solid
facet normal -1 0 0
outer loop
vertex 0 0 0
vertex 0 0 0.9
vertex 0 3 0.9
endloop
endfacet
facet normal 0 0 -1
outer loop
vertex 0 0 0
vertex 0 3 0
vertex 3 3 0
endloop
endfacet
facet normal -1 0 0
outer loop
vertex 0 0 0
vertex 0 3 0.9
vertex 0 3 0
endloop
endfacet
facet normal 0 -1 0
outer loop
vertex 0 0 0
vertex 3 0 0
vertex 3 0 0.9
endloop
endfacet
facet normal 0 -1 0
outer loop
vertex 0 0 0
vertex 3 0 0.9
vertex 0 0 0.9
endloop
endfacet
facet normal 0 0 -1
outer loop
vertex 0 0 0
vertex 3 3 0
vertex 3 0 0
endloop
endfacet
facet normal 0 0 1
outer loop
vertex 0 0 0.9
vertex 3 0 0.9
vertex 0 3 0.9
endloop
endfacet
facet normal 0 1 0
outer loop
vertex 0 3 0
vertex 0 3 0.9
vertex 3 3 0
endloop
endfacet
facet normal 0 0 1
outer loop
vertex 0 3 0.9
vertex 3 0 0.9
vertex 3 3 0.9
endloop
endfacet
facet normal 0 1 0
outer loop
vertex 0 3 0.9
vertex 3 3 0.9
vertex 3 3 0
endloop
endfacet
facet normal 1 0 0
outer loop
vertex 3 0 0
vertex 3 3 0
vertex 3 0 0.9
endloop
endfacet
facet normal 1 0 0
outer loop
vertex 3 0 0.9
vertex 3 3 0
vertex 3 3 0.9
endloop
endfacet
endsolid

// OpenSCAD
/* Warning, this is a very basic generator with a lot of approximation 
input data : [VQFN, RDB, 3x3x0.9mm, 16, , A, C04-21379A]
generated by com.zoubworld.electronics.cad.model3d.Basic
Date : Sun Feb 15 10:50:49 CET 2026
*/

//body
color("black")
translate([0,0,0])
cube([3.0,3.0,0.9], center=false);
